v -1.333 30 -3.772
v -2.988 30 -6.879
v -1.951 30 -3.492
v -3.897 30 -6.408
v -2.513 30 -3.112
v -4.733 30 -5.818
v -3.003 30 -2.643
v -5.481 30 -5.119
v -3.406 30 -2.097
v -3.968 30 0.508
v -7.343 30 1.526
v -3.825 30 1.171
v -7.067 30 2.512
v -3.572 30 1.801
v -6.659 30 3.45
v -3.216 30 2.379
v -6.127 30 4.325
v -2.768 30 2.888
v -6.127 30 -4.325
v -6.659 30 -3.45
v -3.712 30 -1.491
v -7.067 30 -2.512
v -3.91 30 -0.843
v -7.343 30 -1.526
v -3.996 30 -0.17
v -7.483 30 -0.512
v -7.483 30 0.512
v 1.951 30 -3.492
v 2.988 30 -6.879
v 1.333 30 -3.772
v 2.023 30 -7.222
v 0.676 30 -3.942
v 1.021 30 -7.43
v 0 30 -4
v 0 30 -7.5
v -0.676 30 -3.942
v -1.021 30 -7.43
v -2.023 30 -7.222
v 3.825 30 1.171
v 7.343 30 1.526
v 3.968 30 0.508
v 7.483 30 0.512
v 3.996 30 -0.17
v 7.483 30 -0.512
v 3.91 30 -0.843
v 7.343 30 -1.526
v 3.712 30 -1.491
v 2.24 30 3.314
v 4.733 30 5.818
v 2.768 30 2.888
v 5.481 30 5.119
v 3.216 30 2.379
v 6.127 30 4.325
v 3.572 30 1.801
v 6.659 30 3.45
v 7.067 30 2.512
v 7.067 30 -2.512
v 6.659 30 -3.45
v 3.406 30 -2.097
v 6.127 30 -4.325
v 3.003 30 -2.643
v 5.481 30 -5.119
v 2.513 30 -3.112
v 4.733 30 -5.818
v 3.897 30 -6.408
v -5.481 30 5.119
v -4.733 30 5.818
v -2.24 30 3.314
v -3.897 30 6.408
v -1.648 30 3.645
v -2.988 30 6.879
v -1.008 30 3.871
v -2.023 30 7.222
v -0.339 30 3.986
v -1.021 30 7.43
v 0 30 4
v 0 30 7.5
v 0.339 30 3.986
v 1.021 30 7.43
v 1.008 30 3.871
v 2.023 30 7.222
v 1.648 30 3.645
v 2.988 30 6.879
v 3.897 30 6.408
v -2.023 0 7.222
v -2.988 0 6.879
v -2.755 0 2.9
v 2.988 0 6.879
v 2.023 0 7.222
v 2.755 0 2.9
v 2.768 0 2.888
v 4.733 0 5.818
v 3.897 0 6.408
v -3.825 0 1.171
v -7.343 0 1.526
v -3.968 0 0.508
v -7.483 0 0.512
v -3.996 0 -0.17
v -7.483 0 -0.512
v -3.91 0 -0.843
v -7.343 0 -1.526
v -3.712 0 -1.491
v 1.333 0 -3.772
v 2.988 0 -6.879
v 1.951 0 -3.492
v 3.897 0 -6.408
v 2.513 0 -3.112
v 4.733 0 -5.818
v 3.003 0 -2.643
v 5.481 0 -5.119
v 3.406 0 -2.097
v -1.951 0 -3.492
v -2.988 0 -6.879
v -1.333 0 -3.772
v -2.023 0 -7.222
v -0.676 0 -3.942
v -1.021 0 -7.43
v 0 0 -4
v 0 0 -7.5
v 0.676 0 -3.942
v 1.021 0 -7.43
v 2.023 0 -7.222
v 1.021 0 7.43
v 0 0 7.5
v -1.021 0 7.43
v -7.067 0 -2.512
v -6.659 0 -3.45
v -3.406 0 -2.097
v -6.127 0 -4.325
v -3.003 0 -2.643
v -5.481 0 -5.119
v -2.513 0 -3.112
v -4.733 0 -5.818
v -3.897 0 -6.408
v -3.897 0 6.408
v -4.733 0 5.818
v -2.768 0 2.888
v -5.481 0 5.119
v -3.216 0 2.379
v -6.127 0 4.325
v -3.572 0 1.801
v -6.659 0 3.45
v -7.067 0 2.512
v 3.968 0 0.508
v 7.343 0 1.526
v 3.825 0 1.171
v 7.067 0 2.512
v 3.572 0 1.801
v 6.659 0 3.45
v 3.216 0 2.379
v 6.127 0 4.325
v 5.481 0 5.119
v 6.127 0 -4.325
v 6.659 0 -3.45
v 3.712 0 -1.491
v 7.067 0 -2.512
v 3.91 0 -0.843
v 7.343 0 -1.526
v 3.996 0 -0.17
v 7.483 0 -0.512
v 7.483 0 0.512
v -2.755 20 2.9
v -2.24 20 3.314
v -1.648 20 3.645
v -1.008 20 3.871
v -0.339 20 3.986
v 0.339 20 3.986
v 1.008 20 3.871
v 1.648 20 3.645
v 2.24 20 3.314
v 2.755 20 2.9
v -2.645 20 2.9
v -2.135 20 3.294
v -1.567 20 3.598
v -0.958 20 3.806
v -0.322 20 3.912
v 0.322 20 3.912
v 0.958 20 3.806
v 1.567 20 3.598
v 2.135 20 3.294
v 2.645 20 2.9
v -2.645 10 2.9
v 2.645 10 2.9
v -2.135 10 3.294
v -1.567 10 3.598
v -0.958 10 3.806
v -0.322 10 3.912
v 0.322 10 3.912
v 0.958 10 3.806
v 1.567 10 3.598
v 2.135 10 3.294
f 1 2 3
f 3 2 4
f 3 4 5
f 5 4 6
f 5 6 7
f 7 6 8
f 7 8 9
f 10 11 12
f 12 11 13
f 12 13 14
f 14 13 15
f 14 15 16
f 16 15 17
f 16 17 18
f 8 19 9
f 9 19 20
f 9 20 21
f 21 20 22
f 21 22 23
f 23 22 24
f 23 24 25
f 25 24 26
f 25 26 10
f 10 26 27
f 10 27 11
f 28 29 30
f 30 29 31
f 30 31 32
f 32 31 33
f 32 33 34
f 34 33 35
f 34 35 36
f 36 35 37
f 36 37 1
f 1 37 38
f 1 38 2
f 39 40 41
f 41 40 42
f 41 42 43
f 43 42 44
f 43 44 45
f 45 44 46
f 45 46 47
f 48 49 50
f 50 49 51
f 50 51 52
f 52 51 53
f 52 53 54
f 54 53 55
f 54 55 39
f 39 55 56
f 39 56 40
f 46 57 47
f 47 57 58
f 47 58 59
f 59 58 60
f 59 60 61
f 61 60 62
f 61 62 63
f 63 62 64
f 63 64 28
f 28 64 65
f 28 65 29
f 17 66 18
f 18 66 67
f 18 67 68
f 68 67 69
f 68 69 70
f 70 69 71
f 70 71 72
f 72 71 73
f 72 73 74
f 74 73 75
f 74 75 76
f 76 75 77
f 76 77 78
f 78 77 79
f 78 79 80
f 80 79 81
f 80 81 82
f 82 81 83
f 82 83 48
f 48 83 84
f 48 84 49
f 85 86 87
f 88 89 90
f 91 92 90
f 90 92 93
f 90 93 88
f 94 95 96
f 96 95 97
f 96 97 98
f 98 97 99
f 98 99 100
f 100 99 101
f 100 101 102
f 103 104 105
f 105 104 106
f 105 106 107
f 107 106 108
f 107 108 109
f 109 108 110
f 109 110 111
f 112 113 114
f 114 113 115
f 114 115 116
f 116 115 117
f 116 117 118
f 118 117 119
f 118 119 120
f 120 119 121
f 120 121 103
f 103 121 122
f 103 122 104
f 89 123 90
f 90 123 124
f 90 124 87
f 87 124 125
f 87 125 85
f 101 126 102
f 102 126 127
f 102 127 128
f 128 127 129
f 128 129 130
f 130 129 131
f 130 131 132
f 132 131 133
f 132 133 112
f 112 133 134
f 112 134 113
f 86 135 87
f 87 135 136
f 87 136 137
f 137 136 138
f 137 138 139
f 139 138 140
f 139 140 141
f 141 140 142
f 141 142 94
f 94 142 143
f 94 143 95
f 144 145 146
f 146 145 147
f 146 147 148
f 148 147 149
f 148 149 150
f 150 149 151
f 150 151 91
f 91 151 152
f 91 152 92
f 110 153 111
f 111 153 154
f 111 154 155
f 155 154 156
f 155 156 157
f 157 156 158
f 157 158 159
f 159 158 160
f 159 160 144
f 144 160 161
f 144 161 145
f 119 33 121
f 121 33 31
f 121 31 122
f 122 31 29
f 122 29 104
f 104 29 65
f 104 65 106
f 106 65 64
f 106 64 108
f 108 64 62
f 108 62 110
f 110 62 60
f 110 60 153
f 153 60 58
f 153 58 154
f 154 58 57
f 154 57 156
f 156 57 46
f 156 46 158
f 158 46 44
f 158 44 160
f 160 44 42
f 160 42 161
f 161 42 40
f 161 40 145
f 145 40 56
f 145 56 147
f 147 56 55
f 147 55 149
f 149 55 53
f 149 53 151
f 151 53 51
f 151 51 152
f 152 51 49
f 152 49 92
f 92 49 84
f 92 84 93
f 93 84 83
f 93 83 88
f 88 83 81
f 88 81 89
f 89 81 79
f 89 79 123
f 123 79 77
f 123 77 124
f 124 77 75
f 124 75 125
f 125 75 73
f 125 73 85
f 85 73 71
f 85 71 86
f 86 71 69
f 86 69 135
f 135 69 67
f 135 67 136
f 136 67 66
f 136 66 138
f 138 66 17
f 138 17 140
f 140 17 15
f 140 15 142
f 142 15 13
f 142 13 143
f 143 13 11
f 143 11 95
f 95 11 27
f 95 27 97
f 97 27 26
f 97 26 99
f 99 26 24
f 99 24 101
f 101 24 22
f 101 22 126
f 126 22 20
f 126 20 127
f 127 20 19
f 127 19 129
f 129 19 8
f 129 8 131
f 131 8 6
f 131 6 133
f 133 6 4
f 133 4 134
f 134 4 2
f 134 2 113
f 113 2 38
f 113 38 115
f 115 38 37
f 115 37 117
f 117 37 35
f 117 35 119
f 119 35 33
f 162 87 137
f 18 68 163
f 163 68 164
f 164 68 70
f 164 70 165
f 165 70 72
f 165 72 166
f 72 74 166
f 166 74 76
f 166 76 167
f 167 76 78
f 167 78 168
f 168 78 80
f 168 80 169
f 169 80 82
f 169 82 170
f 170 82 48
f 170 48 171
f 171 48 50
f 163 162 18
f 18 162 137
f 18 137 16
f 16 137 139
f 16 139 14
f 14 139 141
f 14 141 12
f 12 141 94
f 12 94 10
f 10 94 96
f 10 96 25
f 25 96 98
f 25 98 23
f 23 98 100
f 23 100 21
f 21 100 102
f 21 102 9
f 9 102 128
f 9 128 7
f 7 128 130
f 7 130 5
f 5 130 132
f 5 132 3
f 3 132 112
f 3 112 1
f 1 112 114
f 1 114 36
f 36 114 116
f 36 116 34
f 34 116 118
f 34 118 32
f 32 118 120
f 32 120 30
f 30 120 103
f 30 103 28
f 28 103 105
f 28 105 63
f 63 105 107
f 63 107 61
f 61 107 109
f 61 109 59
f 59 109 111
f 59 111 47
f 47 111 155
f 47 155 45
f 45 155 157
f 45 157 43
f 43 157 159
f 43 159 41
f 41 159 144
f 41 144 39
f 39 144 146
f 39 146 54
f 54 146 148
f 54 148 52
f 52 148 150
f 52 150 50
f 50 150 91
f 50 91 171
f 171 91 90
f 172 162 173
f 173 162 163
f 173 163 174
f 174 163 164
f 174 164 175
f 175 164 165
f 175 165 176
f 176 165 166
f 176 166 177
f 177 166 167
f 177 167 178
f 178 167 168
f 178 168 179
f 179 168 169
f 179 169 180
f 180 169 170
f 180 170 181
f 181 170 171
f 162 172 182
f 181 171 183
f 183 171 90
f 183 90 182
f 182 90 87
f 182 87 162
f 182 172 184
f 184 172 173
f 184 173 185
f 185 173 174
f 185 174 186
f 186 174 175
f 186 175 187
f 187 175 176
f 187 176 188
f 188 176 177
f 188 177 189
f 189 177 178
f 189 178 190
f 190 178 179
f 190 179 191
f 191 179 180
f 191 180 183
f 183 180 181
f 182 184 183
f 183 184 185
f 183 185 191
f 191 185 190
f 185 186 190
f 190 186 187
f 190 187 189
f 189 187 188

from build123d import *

# Parameters (mm, degrees)
CROQUIS1_R              = 7.5
CROQUIS1_R_2            = 4
SALIENTE_EXTRUIR1_DEPTH = 30
CROQUIS2_W              = 6.9
CROQUIS2_H              = 3.426383691
SALIENTE_EXTRUIR2_DEPTH = 20
CROQUIS3_R              = 3.925
CORTAR_EXTRUIR1_DEPTH   = 20


with BuildPart() as part:
    # Croquis1 → Saliente-Extruir1 (new body)
    with BuildSketch(Plane(origin=(0, 0, 0), x_dir=(1, 0, 0), z_dir=(0, 1, 0))):
        with Locations(Location((0, 0, 0), (0, 0, 270))):
            Circle(CROQUIS1_R)
        with Locations(Location((0, 0, 0), (0, 0, 270))):
            Circle(CROQUIS1_R_2, mode=Mode.SUBTRACT)
    extrude(amount=SALIENTE_EXTRUIR1_DEPTH)

    # Croquis2 → Saliente-Extruir2 (add)
    with BuildSketch(Plane.XZ):
        with Locations((0, 4.613191846)):
            Rectangle(CROQUIS2_W, CROQUIS2_H)
    extrude(amount=-SALIENTE_EXTRUIR2_DEPTH)

    # Croquis3 → Cortar-Extruir1 (cut)
    with BuildSketch(Plane(origin=(0, 30, 0), x_dir=(1, 0, 0), z_dir=(0, 1, 0))):
        Circle(CROQUIS3_R)
    extrude(amount=-CORTAR_EXTRUIR1_DEPTH, mode=Mode.SUBTRACT)


solid = part.part
